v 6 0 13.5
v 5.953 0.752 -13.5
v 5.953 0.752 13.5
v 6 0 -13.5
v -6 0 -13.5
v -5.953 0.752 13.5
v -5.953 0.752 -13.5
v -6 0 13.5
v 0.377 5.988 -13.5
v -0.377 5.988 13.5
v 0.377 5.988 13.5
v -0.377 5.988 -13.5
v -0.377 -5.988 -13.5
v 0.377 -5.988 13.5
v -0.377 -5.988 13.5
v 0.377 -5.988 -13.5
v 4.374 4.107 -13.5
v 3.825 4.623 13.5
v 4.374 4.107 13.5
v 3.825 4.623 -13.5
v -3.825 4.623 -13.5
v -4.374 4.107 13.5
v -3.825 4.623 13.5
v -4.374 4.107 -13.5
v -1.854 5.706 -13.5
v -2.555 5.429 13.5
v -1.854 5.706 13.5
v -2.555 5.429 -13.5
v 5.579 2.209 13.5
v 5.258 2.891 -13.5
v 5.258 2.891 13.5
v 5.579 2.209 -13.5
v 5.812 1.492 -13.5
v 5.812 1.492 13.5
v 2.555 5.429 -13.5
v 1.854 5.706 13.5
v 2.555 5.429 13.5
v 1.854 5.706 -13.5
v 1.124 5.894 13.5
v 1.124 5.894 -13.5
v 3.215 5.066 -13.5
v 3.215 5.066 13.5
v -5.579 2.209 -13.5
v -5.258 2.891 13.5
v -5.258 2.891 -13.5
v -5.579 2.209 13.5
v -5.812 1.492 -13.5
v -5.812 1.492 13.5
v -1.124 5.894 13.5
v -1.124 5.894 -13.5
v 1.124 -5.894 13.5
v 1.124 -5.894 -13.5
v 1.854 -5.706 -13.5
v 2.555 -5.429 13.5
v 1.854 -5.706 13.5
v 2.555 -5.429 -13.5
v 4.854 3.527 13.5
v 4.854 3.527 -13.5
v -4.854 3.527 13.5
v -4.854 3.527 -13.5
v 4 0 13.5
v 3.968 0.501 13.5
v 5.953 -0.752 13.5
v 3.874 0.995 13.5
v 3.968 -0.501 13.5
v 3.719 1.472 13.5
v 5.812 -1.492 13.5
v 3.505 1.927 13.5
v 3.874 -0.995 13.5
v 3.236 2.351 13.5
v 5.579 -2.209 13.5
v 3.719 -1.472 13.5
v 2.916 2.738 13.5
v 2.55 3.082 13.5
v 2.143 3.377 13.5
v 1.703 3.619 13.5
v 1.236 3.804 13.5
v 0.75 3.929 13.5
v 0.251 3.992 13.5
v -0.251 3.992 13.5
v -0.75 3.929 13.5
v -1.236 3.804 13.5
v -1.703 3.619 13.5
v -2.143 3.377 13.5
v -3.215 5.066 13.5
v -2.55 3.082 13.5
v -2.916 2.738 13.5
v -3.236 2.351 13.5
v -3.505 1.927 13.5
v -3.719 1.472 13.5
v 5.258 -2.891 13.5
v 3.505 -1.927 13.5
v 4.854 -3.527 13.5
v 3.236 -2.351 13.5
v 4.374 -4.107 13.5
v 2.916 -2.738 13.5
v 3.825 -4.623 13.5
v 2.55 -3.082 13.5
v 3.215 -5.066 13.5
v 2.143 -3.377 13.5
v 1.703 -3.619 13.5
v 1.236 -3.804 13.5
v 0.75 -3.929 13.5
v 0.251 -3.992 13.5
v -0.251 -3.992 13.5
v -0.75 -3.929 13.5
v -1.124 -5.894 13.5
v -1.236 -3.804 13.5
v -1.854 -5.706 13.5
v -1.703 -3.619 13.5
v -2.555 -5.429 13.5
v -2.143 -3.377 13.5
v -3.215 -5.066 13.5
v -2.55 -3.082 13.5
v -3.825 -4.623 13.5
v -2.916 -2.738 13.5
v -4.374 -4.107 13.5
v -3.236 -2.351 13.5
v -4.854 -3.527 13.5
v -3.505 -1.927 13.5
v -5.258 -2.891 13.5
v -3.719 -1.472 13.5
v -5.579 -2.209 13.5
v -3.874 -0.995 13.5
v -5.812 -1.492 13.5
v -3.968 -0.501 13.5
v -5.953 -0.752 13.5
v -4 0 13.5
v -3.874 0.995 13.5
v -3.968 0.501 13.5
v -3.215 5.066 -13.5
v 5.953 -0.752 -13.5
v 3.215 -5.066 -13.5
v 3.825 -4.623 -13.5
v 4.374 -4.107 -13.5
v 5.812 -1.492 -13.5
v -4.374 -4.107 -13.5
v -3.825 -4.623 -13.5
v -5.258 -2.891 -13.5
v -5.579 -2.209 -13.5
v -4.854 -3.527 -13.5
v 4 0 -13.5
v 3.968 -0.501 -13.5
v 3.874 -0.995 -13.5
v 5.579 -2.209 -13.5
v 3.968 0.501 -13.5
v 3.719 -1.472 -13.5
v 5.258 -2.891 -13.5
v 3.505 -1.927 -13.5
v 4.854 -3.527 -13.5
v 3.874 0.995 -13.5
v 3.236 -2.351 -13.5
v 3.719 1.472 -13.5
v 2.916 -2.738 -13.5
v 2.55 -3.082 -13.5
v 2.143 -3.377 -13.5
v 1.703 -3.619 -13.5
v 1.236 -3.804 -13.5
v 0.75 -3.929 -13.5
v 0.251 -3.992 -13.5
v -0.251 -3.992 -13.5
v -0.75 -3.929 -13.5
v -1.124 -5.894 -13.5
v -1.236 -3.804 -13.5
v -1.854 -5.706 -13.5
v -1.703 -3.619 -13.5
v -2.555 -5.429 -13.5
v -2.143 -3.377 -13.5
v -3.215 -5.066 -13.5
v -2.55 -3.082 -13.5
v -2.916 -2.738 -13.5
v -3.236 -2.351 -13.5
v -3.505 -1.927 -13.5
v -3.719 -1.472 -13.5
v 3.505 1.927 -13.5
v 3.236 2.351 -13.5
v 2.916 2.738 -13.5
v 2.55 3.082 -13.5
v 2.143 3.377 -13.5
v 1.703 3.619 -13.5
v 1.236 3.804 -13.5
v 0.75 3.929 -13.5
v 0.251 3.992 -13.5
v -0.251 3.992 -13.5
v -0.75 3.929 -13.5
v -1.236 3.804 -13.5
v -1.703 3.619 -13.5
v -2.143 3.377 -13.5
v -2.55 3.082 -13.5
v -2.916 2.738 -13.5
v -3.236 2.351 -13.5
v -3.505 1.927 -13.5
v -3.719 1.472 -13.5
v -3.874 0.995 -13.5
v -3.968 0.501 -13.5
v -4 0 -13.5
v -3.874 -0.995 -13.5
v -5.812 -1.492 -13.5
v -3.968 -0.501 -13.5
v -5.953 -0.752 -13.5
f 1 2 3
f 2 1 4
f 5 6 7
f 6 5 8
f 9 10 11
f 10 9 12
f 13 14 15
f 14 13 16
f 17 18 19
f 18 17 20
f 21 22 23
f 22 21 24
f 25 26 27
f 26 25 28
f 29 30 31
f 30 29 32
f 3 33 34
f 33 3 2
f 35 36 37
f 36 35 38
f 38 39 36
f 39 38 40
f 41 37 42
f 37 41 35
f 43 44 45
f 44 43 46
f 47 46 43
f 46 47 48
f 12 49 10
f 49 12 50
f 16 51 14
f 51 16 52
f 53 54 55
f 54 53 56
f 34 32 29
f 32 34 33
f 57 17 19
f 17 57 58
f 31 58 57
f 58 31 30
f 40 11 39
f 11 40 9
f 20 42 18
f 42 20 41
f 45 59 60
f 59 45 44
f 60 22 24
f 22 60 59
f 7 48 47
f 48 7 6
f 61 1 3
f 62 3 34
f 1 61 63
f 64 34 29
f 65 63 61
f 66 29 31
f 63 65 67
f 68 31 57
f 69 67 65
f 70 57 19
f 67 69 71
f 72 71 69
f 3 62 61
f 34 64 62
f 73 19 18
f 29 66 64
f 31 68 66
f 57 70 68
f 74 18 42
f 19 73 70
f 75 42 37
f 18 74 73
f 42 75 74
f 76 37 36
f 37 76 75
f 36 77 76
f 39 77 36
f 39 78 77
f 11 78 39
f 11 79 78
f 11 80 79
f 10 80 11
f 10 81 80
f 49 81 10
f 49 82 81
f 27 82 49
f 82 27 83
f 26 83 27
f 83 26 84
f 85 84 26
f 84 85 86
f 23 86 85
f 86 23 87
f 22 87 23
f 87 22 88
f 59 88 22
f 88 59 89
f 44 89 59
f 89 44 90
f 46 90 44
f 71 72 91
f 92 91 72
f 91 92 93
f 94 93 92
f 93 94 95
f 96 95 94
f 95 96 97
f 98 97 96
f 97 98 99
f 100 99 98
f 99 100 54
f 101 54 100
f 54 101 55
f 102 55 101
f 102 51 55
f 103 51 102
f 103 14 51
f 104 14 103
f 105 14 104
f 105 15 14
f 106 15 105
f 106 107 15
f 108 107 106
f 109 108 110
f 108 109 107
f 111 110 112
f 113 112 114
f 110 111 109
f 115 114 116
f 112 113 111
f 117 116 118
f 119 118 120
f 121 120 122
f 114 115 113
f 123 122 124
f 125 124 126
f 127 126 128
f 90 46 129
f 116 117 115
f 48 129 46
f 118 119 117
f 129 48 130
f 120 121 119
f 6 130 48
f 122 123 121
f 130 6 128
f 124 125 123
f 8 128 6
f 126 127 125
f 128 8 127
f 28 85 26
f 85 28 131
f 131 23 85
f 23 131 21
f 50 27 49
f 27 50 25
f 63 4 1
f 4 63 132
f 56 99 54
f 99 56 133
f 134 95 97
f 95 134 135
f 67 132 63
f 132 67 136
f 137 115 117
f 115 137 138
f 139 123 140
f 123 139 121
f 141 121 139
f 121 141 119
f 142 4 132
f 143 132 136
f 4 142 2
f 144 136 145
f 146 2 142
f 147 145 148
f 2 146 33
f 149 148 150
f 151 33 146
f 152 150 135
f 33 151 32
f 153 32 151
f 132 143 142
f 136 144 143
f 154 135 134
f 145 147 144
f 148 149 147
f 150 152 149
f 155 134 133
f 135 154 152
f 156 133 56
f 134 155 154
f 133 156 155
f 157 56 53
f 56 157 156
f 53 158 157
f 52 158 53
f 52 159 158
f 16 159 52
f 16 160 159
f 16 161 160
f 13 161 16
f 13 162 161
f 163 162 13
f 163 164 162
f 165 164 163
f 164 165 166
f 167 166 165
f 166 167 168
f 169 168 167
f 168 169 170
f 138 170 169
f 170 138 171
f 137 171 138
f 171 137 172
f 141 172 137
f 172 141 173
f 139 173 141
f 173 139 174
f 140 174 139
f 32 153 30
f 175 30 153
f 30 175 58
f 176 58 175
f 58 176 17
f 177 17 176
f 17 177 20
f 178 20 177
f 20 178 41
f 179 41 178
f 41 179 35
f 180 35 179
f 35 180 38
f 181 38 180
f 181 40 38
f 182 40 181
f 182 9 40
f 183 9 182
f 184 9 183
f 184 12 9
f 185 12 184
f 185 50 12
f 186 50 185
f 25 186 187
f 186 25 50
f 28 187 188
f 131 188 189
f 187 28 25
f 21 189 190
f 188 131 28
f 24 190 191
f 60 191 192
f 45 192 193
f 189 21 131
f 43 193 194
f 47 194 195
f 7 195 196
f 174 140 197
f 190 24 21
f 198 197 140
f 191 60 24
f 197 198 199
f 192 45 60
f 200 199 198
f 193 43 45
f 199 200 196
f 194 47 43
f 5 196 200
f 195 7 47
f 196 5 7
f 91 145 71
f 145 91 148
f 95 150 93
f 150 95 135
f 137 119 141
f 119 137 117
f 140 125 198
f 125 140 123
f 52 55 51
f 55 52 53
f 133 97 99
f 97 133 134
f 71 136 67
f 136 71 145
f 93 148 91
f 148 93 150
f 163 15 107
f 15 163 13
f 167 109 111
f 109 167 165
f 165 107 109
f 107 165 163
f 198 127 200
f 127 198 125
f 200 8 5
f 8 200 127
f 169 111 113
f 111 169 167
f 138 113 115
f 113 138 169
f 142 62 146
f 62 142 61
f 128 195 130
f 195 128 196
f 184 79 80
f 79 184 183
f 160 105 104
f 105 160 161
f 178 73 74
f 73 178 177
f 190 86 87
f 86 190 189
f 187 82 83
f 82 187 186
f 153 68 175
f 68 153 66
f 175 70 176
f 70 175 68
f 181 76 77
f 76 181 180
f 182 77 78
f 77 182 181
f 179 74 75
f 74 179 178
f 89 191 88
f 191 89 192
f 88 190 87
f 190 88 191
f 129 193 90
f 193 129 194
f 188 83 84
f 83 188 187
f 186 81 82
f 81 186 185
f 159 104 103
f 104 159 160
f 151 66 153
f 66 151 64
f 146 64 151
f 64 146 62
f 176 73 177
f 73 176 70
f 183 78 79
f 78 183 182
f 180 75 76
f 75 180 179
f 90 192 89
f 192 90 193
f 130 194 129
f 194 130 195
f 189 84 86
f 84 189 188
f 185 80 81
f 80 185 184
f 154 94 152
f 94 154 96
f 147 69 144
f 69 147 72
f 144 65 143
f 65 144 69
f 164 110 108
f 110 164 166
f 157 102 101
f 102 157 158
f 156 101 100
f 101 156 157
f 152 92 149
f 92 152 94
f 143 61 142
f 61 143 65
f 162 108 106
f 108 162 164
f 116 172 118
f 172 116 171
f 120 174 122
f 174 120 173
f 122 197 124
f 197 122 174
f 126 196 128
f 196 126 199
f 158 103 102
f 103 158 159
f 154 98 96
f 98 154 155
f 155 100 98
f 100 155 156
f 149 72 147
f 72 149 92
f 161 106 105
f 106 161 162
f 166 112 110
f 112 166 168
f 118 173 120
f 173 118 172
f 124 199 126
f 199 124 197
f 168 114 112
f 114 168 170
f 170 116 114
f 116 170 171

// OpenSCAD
$fn = 50;


difference() {
	union() {
		translate(v = [0, 0, -13.5000000000]) {
			cylinder(h = 27, r = 6.0000000000);
		}
	}
	union() {
		translate(v = [0, 0, -100.0000000000]) {
			cylinder(h = 200, r = 4);
		}
	}
}
